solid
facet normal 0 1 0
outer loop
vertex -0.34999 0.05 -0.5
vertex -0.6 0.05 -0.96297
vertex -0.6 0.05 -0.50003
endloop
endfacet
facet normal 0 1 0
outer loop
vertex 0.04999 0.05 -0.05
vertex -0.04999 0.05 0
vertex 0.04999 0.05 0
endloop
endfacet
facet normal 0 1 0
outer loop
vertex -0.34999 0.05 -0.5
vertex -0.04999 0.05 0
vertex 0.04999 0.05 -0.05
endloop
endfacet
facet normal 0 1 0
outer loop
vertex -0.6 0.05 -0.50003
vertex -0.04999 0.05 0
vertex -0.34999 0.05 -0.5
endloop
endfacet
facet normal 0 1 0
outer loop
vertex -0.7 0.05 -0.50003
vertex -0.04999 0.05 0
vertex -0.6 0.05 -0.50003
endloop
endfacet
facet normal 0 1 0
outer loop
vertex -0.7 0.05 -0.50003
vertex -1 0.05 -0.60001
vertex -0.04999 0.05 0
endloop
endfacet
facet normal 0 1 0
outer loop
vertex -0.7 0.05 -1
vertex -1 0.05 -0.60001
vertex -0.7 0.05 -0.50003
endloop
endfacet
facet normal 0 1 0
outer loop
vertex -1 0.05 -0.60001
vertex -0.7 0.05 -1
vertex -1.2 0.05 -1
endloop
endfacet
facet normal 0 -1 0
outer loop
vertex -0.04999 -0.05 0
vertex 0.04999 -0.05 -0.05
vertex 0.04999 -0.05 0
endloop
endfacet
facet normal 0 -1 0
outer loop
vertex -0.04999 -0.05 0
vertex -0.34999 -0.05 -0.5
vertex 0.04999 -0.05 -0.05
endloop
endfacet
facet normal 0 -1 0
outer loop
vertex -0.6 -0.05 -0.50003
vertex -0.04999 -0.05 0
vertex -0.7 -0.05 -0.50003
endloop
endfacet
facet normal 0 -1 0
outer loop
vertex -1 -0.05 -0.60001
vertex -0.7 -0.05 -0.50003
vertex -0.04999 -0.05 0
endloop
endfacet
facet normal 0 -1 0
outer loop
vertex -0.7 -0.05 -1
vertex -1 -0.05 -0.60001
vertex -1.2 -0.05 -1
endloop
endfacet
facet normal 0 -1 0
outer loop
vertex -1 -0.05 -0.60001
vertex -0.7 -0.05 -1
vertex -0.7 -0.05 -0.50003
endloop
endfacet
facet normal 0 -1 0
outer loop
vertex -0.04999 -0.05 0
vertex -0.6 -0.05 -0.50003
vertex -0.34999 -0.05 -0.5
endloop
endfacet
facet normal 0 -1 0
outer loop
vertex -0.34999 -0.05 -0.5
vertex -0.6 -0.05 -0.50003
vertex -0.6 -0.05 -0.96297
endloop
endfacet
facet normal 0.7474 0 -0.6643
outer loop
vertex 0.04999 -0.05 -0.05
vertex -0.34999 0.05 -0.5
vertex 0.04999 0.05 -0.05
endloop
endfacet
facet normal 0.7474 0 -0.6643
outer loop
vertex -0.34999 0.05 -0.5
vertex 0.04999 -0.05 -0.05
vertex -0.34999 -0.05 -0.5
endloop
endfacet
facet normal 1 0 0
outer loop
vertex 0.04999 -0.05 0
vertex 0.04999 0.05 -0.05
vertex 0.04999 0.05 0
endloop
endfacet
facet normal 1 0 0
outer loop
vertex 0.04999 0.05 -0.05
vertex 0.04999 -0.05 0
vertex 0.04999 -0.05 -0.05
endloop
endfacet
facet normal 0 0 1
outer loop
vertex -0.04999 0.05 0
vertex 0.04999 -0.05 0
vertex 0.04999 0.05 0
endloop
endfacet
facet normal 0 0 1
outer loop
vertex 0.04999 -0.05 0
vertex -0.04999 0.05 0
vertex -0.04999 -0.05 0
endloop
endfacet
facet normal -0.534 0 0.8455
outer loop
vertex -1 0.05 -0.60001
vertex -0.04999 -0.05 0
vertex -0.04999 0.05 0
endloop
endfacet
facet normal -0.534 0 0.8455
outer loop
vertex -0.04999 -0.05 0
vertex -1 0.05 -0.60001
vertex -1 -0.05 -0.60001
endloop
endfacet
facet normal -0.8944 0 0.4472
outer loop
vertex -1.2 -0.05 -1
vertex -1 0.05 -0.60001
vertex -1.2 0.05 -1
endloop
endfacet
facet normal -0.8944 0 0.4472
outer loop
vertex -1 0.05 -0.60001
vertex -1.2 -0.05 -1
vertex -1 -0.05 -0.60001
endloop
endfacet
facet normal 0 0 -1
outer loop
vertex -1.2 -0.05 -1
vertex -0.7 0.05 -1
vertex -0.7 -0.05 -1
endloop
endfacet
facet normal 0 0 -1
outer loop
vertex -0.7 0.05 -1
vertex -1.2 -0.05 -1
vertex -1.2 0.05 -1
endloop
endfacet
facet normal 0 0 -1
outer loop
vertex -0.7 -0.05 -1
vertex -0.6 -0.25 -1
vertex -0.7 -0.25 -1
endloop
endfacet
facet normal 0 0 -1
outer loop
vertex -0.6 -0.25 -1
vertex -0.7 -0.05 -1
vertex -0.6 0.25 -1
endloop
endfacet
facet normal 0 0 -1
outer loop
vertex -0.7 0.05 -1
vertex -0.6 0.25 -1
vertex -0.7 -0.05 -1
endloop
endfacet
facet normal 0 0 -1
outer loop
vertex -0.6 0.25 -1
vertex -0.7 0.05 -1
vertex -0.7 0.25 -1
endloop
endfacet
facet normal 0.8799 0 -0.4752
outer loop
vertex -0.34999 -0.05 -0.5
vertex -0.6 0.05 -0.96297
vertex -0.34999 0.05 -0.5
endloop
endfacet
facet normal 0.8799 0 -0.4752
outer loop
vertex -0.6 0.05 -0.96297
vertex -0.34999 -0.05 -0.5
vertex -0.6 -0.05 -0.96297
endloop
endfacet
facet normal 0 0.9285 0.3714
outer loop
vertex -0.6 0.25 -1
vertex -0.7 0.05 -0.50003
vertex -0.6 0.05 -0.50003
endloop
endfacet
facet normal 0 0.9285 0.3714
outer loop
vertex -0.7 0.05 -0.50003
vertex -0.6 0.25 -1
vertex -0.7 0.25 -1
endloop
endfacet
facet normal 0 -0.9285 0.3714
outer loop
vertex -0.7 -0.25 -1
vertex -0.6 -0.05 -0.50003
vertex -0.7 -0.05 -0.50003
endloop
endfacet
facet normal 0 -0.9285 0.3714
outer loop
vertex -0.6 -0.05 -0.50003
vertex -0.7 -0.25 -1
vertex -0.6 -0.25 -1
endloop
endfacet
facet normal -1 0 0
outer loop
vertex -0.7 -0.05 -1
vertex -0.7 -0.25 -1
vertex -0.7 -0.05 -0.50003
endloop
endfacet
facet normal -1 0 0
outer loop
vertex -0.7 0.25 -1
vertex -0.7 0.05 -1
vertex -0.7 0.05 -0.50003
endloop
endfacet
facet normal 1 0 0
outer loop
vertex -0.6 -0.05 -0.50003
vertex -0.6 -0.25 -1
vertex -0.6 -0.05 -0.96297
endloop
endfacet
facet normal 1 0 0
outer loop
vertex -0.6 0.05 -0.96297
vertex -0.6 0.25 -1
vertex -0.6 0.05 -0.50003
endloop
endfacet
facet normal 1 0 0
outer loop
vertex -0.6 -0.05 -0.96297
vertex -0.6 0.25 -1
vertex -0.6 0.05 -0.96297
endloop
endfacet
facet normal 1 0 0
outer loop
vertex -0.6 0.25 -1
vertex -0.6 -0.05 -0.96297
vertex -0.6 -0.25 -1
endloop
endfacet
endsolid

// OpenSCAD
//----------------------------------------------
// Custom Support 
// Size must be 1x1x1 
// Tested in Cura with Support Size : 30
// Recommanded Infill support > 12%
//----------------------------------------------
$fn=30;

translate([-0.5,-0.5,-1.0]) 
union() {
    translate([0.5,0.55,0.0]) rotate([90, 0, 0]) {
			linear_extrude(height=0.1) {
				polygon(points=[[-0.62,0],[-1.20,0],[-1,0.4],[-0.05,1],[0.05,1],[0.05,0.95],[-0.35,0.5]], convexity=1);
			}
		}
    translate([-0.2,0.5,0.0]) rotate([90, 0, 90]) {
			linear_extrude(height=0.1) {
				polygon(points=[[-0.25,0],[0.25,0],[0.05,0.5],[-0.05,0.5]], convexity=1);
			}        
    }
}
